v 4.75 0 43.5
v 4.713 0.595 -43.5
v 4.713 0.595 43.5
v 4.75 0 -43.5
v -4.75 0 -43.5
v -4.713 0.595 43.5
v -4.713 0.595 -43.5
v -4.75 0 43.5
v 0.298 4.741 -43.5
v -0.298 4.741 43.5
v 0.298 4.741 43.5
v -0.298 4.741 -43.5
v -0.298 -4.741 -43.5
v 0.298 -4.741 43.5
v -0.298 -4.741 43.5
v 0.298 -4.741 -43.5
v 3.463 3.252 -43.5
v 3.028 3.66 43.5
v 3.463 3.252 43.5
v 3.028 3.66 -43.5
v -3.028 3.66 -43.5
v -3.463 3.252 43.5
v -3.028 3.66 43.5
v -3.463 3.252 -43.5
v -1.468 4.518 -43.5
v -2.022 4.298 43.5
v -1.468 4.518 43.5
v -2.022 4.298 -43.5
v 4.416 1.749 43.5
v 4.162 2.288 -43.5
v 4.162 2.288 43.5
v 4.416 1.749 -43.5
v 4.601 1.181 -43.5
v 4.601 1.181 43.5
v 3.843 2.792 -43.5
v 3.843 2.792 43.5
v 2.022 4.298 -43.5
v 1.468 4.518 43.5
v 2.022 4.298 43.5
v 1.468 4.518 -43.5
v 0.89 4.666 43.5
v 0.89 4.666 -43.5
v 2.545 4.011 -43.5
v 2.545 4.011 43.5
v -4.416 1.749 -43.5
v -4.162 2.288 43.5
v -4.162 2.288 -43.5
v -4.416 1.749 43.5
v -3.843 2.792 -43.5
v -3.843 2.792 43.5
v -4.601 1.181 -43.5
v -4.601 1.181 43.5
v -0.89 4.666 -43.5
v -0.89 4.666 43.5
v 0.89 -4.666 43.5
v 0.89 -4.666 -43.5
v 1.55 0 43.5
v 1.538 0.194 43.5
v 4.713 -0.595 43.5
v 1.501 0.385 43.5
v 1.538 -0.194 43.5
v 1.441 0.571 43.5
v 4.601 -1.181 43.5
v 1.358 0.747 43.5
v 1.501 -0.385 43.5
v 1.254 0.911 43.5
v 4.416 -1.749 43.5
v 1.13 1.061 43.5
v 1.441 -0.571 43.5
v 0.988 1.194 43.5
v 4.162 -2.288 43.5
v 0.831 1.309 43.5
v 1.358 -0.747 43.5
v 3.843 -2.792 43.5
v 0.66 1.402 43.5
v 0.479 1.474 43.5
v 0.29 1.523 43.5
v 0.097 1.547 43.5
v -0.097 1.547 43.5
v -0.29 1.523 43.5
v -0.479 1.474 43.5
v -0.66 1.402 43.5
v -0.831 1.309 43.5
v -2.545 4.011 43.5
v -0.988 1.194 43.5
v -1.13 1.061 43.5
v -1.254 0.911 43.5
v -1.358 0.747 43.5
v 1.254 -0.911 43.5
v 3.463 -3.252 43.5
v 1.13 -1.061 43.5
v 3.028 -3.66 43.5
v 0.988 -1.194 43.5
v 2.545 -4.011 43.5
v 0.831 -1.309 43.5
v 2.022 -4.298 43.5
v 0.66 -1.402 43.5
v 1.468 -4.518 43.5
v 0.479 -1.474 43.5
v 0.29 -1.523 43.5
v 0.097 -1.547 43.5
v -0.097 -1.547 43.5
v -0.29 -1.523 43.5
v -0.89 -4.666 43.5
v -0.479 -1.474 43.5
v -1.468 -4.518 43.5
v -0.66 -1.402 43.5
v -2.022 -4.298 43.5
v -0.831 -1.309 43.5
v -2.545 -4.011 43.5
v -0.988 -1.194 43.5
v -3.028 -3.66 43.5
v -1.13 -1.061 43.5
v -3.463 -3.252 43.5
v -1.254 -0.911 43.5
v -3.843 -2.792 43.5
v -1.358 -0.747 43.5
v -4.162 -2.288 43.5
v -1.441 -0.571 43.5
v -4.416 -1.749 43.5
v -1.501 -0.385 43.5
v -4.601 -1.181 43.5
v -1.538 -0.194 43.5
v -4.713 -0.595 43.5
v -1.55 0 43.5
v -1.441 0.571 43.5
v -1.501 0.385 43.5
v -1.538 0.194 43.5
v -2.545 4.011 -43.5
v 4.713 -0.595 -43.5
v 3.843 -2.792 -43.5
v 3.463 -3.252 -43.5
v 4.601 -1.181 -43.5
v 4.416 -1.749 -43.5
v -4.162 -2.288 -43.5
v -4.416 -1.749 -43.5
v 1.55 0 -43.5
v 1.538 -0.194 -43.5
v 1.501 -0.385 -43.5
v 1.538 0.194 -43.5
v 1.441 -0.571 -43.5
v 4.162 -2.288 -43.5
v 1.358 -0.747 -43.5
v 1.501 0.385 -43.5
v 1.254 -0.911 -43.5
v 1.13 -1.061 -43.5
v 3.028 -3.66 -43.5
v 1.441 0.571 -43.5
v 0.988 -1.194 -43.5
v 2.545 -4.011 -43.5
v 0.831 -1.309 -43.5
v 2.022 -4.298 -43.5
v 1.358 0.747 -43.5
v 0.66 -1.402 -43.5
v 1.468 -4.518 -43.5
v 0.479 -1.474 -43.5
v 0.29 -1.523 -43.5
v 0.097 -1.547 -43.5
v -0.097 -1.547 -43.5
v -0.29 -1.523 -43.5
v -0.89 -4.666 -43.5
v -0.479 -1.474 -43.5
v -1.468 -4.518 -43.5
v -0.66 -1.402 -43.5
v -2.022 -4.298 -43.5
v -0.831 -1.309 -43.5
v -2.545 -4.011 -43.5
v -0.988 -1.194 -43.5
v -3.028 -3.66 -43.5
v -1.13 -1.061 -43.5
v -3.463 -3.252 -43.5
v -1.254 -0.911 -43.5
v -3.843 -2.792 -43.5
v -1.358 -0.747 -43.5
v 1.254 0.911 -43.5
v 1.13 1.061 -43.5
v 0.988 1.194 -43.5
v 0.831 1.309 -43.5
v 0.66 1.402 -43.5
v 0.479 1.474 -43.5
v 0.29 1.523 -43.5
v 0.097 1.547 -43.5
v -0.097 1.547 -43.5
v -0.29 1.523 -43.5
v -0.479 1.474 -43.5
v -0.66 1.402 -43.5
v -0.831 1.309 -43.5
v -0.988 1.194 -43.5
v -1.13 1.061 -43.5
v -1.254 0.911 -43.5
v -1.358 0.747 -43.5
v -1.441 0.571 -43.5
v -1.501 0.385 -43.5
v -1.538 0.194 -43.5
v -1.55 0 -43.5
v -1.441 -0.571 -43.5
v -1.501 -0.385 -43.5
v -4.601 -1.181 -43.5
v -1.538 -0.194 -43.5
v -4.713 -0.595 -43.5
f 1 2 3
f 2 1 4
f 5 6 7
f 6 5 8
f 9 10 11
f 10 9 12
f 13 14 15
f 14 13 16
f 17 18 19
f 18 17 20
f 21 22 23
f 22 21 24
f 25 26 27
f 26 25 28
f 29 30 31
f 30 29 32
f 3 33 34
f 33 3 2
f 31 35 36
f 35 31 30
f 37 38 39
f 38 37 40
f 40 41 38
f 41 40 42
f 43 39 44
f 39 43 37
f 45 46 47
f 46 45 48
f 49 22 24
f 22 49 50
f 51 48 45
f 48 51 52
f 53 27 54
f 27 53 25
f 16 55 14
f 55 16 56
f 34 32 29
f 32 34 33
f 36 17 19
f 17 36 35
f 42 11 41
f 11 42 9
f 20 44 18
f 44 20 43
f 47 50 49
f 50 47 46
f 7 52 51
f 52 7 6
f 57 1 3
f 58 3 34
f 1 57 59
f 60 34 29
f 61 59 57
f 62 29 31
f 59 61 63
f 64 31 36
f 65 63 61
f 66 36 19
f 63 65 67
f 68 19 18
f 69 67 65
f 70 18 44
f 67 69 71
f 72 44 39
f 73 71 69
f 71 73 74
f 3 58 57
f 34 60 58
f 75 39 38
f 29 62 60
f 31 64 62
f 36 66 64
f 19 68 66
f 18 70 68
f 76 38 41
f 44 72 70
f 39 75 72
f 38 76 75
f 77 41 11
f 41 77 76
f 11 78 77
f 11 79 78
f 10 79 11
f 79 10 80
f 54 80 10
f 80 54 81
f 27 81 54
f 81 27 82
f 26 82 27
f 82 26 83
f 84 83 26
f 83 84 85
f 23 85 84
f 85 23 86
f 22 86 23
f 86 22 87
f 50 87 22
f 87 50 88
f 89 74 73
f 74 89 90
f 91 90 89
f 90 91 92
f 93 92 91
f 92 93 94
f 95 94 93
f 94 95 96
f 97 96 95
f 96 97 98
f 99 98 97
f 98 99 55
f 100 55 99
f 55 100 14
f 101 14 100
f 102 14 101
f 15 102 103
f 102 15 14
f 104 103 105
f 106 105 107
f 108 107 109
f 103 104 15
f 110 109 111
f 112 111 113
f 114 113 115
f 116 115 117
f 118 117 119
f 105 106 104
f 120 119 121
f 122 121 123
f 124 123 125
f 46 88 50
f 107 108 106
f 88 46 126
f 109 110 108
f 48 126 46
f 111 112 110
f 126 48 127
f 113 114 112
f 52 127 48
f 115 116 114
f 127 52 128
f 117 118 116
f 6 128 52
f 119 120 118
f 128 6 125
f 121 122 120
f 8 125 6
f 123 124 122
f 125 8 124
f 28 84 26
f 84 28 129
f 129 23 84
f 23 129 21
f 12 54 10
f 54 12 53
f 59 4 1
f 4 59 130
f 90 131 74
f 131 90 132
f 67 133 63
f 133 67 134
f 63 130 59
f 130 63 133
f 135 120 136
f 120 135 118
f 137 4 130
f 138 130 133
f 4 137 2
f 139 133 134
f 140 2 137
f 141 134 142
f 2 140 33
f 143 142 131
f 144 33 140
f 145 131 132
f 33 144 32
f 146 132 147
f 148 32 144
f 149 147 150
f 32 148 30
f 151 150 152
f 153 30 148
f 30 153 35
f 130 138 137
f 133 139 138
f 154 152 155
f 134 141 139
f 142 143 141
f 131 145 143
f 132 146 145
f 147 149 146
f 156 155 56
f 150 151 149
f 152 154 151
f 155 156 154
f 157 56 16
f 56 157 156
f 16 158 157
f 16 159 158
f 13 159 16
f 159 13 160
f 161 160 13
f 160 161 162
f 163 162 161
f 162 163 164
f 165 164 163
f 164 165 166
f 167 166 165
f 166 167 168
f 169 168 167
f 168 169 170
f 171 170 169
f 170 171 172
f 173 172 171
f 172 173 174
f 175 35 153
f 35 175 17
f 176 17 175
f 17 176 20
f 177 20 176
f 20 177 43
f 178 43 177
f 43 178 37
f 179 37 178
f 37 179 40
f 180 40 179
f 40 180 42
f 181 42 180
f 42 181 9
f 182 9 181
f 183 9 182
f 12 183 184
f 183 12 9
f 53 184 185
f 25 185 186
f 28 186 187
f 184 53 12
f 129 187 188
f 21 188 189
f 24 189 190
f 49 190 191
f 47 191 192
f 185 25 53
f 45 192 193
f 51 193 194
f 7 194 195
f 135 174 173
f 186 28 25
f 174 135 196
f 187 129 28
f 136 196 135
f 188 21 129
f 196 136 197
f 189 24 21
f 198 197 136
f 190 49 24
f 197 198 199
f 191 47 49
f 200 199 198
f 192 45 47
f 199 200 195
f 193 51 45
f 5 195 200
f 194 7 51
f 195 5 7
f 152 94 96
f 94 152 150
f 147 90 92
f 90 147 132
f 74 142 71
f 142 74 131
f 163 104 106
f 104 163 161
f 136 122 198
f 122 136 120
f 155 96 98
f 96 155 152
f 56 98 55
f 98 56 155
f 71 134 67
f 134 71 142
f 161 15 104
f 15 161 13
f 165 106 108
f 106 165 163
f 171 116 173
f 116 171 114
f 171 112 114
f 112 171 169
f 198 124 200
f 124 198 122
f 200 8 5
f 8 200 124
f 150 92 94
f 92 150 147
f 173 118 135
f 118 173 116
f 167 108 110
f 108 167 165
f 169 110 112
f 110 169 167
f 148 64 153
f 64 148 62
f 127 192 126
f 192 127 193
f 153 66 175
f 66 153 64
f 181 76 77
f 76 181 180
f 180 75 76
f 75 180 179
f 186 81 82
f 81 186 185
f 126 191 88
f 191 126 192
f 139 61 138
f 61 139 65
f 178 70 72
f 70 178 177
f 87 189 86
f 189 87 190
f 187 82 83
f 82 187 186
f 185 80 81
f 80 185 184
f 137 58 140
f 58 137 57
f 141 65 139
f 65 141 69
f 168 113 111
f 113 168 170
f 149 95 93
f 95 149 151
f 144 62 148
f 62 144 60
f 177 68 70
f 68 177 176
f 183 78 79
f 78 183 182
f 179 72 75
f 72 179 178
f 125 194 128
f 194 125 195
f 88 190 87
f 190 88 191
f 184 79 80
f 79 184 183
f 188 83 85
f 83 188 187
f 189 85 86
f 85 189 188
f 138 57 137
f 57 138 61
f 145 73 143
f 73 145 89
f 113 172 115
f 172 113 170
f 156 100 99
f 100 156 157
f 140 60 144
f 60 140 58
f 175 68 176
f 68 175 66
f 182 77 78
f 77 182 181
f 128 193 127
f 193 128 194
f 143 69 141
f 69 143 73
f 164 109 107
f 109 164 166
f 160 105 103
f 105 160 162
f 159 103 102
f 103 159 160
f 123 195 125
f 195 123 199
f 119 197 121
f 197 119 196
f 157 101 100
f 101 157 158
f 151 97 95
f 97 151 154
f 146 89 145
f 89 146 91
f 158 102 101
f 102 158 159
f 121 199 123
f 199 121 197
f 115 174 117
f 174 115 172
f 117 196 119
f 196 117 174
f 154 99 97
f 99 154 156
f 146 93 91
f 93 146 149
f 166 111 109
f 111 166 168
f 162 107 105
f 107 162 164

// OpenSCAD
$fn = 50;


difference() {
	union() {
		translate(v = [0, 0, -43.5000000000]) {
			cylinder(h = 87, r = 4.7500000000);
		}
	}
	union() {
		translate(v = [0, 0, -100.0000000000]) {
			cylinder(h = 200, r = 1.5500000000);
		}
	}
}
